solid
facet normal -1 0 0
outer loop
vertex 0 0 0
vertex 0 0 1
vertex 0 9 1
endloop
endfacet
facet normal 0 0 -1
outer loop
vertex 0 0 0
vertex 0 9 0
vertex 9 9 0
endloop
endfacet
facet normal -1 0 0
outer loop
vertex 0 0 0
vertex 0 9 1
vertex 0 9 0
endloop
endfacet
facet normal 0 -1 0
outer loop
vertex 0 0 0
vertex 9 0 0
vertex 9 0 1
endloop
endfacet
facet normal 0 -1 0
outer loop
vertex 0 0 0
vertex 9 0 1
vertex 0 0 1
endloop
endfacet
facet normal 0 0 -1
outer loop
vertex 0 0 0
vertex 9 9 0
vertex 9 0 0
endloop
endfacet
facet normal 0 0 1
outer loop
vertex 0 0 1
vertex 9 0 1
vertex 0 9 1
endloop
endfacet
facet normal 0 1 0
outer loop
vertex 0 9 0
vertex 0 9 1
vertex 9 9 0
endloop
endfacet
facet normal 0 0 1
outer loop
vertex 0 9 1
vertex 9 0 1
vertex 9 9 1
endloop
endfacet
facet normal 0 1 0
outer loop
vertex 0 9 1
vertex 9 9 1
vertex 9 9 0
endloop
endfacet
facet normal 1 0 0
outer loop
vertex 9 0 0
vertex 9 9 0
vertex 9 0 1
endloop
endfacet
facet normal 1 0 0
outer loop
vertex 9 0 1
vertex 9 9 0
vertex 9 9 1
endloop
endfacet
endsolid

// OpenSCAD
/* Warning, this is a very basic generator with a lot of approximation 
input data : [VQFN, TJB, 9x9x1mm, 64, , A, C04-21438A]
generated by com.zoubworld.electronics.cad.model3d.Basic
Date : Sun Feb 15 10:50:49 CET 2026
*/

//body
color("black")
translate([0,0,0])
cube([9.0,9.0,1.0], center=false);
